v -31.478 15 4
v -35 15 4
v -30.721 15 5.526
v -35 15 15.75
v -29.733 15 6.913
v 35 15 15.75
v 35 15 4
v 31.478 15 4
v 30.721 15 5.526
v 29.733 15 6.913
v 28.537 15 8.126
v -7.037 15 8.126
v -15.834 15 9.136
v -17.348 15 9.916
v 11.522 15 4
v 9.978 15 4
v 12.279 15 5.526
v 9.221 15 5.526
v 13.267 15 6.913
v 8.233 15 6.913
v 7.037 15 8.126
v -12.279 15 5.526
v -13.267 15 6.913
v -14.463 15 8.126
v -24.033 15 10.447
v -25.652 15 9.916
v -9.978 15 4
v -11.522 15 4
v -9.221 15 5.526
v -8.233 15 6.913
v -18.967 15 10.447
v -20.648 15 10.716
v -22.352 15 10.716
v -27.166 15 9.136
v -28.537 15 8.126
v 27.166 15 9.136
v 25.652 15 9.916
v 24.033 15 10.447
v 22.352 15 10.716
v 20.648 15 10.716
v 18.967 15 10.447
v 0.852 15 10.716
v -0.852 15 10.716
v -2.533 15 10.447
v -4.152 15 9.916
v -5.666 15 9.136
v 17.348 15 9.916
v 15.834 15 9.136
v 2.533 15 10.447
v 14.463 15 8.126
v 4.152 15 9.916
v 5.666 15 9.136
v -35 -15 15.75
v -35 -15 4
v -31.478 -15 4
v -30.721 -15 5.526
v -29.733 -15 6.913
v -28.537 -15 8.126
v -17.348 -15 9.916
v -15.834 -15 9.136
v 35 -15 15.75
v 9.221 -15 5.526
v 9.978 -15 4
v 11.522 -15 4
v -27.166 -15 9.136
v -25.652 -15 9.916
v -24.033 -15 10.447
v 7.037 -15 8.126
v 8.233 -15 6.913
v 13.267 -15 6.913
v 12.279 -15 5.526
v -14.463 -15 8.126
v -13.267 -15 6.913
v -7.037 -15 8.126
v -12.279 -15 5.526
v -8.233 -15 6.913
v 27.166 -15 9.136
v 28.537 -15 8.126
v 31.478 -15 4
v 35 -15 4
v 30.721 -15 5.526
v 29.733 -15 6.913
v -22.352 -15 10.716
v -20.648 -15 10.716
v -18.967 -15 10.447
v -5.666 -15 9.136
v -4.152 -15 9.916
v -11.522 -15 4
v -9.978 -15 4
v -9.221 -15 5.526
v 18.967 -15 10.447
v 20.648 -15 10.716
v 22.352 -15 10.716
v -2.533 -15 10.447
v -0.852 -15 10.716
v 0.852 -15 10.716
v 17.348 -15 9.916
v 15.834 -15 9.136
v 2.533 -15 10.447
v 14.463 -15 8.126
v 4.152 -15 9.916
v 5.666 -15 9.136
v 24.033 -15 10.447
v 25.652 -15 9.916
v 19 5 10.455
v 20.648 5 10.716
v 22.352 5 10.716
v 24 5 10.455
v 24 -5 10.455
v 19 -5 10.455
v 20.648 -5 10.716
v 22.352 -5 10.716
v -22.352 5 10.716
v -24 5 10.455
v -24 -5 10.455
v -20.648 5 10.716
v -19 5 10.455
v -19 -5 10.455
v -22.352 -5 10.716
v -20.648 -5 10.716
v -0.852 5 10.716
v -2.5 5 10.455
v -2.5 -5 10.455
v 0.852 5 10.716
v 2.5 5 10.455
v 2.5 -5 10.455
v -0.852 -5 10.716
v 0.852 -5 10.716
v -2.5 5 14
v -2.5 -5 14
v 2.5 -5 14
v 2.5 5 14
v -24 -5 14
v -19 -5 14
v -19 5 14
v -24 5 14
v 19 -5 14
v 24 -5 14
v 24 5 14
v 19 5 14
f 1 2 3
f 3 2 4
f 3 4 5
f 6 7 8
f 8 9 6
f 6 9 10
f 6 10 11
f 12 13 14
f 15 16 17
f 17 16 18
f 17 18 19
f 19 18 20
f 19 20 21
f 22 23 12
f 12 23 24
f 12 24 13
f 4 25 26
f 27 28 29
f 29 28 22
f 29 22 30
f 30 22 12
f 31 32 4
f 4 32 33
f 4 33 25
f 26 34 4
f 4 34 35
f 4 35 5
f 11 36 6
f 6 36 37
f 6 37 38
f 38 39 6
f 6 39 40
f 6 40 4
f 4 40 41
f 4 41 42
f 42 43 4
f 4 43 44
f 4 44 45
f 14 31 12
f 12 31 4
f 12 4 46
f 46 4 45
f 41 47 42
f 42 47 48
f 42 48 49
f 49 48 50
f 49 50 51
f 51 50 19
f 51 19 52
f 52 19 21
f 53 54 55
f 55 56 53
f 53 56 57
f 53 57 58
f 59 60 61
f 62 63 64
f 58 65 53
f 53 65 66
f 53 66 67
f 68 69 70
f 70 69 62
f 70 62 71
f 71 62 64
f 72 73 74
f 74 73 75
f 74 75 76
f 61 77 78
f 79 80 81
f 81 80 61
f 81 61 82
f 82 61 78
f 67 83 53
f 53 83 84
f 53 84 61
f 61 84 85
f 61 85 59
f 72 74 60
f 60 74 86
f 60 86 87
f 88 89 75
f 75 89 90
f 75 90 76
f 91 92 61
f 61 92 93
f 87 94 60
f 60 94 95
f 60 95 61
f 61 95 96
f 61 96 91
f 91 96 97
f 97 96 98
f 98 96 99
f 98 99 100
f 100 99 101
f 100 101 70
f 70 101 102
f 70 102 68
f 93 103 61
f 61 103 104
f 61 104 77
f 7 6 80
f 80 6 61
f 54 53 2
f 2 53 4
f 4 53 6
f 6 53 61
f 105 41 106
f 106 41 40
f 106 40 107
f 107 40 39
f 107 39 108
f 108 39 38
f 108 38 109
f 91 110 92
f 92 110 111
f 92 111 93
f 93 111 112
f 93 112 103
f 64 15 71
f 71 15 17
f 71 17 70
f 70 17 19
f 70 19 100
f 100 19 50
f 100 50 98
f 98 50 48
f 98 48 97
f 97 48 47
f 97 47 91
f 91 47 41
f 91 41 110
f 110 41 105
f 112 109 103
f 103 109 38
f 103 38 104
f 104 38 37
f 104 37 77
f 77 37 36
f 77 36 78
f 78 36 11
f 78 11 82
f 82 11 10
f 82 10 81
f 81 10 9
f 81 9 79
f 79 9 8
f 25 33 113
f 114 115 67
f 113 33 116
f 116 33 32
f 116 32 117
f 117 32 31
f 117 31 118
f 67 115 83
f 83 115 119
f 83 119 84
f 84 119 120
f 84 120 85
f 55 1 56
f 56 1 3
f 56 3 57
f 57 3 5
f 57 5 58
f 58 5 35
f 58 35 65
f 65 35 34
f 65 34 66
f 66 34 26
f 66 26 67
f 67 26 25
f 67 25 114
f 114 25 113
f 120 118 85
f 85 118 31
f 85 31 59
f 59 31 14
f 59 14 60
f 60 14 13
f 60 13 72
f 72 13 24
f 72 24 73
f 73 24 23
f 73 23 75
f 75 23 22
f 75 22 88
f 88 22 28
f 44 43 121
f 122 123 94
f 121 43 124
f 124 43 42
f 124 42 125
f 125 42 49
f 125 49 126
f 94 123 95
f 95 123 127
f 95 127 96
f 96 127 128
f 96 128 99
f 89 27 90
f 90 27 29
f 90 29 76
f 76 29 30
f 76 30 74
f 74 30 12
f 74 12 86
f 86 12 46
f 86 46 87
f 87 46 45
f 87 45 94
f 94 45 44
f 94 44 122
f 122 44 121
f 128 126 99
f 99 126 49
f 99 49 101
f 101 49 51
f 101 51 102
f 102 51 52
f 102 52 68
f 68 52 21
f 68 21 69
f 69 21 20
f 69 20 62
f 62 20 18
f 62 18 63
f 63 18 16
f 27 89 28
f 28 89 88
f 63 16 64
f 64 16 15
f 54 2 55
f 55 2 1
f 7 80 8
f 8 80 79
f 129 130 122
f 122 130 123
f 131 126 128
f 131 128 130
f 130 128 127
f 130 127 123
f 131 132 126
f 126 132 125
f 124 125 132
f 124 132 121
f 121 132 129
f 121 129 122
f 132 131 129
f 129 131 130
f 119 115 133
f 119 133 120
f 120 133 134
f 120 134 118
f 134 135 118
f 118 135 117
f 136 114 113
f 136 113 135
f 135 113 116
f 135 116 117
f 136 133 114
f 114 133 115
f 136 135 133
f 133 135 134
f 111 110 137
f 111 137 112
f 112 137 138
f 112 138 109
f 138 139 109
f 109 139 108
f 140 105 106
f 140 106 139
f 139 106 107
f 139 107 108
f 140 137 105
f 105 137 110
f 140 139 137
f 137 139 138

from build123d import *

# Parameters (mm, degrees)
SKETCH_1_W          = 70
SKETCH_1_H          = 30
EXTRUDE_1_DEPTH     = 15.75
CUT_EXTRUDE_1_DEPTH = 30
SKETCH_4_W          = 70
SKETCH_4_H          = 4
CUT_EXTRUDE_2_DEPTH = 30
SKETCH_6_W          = 5
SKETCH_6_H          = 10
CUT_EXTRUDE_3_DEPTH = 10


with BuildPart() as part:
    # 草图1 → 凸台-拉伸1 (new body)
    with BuildSketch(Plane.XY):
        Rectangle(SKETCH_1_W, SKETCH_1_H)
    extrude(amount=EXTRUDE_1_DEPTH)

    # 草图3 → 切除-拉伸1 (cut)
    with BuildSketch(Plane(origin=(0, 15, 0), x_dir=(1, 0, 0), z_dir=(0, 1, 0))):
        with BuildLine():
            ThreePointArc((-32.25, 0), (-21.5, -10.75), (-10.75, 0))
            Line((-10.75, 0), (-32.25, 0))
        make_face()
        with BuildLine():
            Line((10.75, 0), (-10.75, 0))
            ThreePointArc((-10.75, 0), (0, -10.75), (10.75, 0))
        make_face()
        with BuildLine():
            Line((32.25, 0), (10.75, 0))
            ThreePointArc((10.75, 0), (21.5, -10.75), (32.25, 0))
        make_face()
    extrude(amount=-CUT_EXTRUDE_1_DEPTH, mode=Mode.SUBTRACT)

    # 草图4 → 切除-拉伸2 (cut)
    with BuildSketch(Plane(origin=(0, 15, 0), x_dir=(1, 0, 0), z_dir=(0, 1, 0))):
        with Locations((0, -2)):
            Rectangle(SKETCH_4_W, SKETCH_4_H)
    extrude(amount=-CUT_EXTRUDE_2_DEPTH, mode=Mode.SUBTRACT)

    # 草图6 → 切除-拉伸3 (cut)
    with BuildSketch(Plane(origin=(0, 0, 4), x_dir=(-1, 0, 0), z_dir=(0, 0, -1))):
        with Locations((21.5, 0)):
            Rectangle(SKETCH_6_W, SKETCH_6_H)
        Rectangle(SKETCH_6_W, SKETCH_6_H)
        with Locations((-21.5, 0)):
            Rectangle(SKETCH_6_W, SKETCH_6_H)
    extrude(amount=-CUT_EXTRUDE_3_DEPTH, mode=Mode.SUBTRACT)


solid = part.part
